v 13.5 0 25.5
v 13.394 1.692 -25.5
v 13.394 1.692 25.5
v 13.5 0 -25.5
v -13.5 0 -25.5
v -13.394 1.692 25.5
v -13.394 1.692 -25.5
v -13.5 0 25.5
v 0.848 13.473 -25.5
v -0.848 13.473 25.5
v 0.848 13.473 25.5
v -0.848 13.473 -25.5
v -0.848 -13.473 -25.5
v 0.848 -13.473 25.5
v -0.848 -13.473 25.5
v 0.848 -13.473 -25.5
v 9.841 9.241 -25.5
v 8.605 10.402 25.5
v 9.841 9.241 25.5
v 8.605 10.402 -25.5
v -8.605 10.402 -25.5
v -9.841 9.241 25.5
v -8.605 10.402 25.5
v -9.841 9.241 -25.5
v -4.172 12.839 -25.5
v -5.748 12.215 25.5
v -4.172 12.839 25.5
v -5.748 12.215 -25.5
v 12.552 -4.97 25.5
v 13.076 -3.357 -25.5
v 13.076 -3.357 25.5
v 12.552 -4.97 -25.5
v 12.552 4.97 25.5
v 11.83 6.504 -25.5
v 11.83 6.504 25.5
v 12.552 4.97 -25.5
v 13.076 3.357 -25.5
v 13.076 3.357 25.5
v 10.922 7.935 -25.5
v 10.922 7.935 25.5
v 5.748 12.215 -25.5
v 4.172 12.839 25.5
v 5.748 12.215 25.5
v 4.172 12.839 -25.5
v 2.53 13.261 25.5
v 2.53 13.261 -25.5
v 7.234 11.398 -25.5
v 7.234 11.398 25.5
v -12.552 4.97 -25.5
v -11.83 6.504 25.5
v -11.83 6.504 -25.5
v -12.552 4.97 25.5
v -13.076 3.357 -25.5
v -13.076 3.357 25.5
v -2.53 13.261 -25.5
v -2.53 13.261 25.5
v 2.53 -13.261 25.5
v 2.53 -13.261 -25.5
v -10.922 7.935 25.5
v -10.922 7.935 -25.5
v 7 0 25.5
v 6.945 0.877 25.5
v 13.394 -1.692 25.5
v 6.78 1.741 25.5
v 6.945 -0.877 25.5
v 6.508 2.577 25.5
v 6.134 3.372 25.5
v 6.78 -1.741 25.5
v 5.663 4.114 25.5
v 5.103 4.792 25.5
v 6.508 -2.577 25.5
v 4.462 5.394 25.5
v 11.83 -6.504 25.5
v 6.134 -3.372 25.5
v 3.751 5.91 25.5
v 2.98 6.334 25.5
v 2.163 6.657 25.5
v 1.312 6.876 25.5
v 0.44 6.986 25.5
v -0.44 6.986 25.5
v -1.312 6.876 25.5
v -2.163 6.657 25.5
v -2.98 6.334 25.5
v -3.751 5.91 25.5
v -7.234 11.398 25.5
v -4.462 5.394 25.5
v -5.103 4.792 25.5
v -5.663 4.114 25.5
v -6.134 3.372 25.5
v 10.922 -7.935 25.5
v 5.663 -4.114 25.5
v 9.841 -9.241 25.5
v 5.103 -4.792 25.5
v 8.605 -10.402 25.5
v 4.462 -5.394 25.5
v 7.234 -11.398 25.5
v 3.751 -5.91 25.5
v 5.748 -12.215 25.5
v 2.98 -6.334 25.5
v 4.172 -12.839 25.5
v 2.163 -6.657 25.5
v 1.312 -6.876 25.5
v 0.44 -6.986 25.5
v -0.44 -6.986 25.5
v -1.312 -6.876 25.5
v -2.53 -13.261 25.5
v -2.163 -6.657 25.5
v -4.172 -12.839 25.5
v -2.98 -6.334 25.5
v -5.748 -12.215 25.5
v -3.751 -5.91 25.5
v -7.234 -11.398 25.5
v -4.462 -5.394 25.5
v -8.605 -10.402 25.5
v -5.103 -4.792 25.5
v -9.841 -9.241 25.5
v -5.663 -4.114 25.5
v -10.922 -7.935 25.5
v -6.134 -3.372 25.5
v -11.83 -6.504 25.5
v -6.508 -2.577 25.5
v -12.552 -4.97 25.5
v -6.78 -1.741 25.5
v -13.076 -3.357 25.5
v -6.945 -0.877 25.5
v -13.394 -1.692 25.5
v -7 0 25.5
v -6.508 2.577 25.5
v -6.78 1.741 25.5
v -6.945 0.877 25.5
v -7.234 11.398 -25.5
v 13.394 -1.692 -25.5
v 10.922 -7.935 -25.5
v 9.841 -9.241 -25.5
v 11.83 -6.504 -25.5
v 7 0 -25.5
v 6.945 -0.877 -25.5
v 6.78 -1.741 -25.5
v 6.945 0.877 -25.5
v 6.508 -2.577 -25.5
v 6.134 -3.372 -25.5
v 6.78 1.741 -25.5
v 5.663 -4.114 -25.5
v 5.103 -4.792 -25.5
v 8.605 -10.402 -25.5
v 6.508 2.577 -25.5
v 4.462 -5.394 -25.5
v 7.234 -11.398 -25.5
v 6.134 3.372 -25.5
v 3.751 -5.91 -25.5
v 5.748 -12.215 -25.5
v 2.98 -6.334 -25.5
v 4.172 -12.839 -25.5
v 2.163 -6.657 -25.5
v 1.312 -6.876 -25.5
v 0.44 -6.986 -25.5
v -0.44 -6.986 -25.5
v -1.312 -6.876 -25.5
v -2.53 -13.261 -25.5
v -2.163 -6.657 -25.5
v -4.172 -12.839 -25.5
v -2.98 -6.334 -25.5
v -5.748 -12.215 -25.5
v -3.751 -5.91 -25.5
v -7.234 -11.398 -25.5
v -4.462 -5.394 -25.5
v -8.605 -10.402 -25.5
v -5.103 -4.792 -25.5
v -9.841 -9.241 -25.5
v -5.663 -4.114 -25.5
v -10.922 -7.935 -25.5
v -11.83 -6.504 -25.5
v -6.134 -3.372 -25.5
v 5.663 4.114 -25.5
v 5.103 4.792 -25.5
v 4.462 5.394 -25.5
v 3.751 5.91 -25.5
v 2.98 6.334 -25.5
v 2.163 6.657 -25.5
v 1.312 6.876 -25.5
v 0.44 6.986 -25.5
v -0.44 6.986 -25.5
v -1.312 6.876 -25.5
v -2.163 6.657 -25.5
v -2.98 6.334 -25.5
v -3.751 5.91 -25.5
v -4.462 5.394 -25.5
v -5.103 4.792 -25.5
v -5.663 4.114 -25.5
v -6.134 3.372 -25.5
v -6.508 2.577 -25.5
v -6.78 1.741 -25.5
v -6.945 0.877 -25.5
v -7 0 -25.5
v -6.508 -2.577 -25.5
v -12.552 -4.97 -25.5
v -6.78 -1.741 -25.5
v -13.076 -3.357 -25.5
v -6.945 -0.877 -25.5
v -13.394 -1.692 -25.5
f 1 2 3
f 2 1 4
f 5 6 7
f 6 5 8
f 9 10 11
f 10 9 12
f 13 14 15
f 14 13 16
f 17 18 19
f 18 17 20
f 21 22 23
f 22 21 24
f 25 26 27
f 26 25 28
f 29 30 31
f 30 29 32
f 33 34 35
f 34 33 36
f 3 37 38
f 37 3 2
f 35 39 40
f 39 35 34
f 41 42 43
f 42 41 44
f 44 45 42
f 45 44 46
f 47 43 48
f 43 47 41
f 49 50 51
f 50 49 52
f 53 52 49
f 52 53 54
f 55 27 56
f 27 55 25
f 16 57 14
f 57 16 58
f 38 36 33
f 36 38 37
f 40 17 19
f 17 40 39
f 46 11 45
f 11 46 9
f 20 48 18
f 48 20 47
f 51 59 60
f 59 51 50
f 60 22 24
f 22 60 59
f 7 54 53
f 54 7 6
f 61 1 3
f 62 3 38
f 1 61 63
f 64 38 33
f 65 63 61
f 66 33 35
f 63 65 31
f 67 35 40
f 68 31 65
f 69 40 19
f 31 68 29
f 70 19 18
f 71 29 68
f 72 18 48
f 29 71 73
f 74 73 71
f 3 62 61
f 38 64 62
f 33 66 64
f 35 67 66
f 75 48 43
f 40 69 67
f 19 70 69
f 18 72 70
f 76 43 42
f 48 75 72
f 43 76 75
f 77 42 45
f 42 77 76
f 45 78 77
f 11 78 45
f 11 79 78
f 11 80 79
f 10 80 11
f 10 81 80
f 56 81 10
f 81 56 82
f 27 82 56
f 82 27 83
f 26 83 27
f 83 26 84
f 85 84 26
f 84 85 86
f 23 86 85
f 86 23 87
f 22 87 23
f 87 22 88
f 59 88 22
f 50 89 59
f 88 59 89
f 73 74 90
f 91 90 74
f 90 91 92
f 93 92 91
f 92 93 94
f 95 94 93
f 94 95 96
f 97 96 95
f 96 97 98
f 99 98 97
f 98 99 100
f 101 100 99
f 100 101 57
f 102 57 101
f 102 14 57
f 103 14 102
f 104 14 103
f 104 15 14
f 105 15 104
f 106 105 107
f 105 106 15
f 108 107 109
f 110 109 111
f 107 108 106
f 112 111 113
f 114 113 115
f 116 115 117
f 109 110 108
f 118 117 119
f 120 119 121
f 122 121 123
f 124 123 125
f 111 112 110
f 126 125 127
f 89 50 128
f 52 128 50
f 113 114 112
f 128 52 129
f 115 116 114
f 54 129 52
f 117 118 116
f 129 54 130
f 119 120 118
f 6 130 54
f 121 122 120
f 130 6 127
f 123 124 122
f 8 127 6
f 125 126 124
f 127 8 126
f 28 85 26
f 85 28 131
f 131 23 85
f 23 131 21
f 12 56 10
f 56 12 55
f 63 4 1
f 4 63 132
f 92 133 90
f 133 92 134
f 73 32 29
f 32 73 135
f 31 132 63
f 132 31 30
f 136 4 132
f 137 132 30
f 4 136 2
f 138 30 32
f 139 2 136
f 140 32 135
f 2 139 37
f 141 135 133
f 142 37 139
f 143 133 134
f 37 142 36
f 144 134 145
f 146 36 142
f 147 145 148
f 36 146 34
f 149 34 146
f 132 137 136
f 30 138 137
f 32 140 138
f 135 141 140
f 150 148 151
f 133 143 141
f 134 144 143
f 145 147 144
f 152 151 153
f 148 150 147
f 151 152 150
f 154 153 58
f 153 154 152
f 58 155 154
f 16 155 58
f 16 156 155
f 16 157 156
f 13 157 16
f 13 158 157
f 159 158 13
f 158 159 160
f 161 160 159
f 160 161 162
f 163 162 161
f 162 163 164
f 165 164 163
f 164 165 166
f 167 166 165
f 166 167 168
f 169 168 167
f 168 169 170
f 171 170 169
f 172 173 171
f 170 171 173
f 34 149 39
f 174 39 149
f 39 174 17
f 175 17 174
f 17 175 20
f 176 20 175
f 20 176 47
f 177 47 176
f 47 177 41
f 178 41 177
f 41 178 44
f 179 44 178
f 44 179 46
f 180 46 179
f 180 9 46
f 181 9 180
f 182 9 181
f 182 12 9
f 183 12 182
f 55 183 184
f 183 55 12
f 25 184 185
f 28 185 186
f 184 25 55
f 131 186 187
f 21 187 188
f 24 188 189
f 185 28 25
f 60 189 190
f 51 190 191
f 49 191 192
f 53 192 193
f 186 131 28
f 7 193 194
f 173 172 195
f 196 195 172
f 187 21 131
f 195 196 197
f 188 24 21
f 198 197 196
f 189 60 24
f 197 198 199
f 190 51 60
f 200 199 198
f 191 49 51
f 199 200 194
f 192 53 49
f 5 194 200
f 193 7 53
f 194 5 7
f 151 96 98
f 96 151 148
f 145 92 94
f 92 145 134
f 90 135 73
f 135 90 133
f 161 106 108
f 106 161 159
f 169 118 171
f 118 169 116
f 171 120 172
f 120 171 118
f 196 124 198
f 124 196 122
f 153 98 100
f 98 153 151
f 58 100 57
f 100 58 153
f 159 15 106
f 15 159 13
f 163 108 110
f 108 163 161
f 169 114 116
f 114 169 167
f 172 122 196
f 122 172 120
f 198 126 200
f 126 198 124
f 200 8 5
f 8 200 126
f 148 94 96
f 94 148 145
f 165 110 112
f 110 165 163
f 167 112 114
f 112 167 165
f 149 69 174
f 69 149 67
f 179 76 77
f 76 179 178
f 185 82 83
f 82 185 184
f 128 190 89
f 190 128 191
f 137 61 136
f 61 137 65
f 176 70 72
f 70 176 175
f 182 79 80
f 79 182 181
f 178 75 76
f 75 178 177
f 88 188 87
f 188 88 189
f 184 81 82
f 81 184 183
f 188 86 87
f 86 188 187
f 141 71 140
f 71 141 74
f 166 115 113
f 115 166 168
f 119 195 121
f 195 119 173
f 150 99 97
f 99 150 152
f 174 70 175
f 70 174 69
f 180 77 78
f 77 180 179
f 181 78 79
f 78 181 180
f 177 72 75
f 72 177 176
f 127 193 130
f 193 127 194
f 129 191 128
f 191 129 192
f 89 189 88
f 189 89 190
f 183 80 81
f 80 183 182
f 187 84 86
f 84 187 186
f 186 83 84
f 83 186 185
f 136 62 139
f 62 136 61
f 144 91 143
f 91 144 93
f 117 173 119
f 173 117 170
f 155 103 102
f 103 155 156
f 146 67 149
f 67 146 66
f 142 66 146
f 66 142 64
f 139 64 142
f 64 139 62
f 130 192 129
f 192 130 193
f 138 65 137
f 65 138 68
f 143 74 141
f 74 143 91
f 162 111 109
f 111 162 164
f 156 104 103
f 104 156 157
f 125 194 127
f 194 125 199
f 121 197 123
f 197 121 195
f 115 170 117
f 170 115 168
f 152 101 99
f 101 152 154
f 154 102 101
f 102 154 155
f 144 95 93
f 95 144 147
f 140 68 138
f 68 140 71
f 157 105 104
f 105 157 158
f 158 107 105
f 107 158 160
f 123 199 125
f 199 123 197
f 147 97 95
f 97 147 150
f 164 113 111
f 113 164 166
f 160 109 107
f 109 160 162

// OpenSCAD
$fn = 50;


difference() {
	union() {
		translate(v = [0, 0, -25.5000000000]) {
			cylinder(h = 51, r = 13.5000000000);
		}
	}
	union() {
		translate(v = [0, 0, -100.0000000000]) {
			cylinder(h = 200, r = 7);
		}
	}
}
